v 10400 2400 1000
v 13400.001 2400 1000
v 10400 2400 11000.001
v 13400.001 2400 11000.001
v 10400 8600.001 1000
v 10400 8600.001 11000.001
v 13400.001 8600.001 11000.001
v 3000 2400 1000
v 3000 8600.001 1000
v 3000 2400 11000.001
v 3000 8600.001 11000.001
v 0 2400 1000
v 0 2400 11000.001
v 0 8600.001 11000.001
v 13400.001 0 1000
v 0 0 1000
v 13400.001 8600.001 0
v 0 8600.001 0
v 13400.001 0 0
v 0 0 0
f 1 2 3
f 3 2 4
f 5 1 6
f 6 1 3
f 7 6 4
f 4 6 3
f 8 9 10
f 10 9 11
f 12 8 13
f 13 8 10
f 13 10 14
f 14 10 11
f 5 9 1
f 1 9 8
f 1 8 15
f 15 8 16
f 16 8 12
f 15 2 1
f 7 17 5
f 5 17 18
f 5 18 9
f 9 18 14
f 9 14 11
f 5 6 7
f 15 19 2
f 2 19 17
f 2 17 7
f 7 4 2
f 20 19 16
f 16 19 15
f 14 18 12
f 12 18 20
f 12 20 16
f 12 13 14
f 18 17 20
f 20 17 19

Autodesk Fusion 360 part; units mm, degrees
sketch "Sketch1" plane through (0, 0, 0) normal (0, 0, 1) x (1, 0, 0)
  line L0 (0, 0) -> (13400, 0)
  line L1 (13400, 0) -> (13400, 8600)
  line L2 (13400, 8600) -> (0, 8600)
  line L3 (0, 8600) -> (0, 0)
  dimension "d1" = 13400
  dimension "d2" = 8600
extrude "Extrude1" add sketch "Sketch1" along normal blind 1000
sketch "Sketch2" plane through (0, 0, 1000) normal (0, 0, 1) x (-1, 0, 0)
  line L0 (0, -8600) -> (0, 0)
  line L1 (0, 0) -> (-13400, 0)
  line L2 (-13400, 0) -> (-13400, -8600)
  line L3 (-13400, -8600) -> (0, -8600)
  line L4 (0, -8600) -> (-3000, -8600)
  line L5 (-3000, -8600) -> (-3000, -2400)
  line L6 (-3000, -2400) -> (0, -2400)
  line L7 (0, -2400) -> (0, -8600)
  line L8 (-13400, -8600) -> (-10400, -8600)
  line L9 (-10400, -8600) -> (-10400, -2400)
  line L10 (-10400, -2400) -> (-13400, -2400)
  line L11 (-13400, -2400) -> (-13400, -8600)
extrude "Extrude2" add sketch "Sketch2" along normal blind 10000 contours L0 L3 L4 L5 L6 L7 | L2 L3 L8 L9 L10 L11
sketch "Sketch3" plane through (0, 0, 0) normal (0, 0, 1) x (1, 0, 0)
  line L0 (2257.1545, 9712.3639) -> (11104.2145, 9712.3639)
  line L1 (11104.2145, 9712.3639) -> (11104.2145, 1780.517)
  line L2 (11104.2145, 1780.517) -> (2257.1545, 1780.517)
  line L3 (2257.1545, 1780.517) -> (2257.1545, 9712.3639)
  line L4 (3000, 2400) -> (3000, 8600)
  line L5 (0, 2400) -> (3000, 2400)
  line L6 (3000, 8600) -> (0, 8600)
  line L7 (13400, 8600) -> (10400, 8600)
  line L8 (10400, 2400) -> (13400, 2400)
  line L9 (10400, 8600) -> (10400, 2400)
